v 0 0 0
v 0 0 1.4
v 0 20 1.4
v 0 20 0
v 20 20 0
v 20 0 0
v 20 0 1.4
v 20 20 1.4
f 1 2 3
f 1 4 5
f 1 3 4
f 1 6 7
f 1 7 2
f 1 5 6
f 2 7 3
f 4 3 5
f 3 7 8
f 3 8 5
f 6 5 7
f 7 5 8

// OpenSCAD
/* Warning, this is a very basic generator with a lot of approximation 
input data : [LQFP, H8X, 20x20x1.4mm, 144, , D, C04-00044D]
generated by com.zoubworld.electronics.cad.model3d.Basic
Date : Sun Feb 15 10:50:48 CET 2026
*/

//body
color("black")
translate([0,0,0])
cube([20.0,20.0,1.4], center=false);
